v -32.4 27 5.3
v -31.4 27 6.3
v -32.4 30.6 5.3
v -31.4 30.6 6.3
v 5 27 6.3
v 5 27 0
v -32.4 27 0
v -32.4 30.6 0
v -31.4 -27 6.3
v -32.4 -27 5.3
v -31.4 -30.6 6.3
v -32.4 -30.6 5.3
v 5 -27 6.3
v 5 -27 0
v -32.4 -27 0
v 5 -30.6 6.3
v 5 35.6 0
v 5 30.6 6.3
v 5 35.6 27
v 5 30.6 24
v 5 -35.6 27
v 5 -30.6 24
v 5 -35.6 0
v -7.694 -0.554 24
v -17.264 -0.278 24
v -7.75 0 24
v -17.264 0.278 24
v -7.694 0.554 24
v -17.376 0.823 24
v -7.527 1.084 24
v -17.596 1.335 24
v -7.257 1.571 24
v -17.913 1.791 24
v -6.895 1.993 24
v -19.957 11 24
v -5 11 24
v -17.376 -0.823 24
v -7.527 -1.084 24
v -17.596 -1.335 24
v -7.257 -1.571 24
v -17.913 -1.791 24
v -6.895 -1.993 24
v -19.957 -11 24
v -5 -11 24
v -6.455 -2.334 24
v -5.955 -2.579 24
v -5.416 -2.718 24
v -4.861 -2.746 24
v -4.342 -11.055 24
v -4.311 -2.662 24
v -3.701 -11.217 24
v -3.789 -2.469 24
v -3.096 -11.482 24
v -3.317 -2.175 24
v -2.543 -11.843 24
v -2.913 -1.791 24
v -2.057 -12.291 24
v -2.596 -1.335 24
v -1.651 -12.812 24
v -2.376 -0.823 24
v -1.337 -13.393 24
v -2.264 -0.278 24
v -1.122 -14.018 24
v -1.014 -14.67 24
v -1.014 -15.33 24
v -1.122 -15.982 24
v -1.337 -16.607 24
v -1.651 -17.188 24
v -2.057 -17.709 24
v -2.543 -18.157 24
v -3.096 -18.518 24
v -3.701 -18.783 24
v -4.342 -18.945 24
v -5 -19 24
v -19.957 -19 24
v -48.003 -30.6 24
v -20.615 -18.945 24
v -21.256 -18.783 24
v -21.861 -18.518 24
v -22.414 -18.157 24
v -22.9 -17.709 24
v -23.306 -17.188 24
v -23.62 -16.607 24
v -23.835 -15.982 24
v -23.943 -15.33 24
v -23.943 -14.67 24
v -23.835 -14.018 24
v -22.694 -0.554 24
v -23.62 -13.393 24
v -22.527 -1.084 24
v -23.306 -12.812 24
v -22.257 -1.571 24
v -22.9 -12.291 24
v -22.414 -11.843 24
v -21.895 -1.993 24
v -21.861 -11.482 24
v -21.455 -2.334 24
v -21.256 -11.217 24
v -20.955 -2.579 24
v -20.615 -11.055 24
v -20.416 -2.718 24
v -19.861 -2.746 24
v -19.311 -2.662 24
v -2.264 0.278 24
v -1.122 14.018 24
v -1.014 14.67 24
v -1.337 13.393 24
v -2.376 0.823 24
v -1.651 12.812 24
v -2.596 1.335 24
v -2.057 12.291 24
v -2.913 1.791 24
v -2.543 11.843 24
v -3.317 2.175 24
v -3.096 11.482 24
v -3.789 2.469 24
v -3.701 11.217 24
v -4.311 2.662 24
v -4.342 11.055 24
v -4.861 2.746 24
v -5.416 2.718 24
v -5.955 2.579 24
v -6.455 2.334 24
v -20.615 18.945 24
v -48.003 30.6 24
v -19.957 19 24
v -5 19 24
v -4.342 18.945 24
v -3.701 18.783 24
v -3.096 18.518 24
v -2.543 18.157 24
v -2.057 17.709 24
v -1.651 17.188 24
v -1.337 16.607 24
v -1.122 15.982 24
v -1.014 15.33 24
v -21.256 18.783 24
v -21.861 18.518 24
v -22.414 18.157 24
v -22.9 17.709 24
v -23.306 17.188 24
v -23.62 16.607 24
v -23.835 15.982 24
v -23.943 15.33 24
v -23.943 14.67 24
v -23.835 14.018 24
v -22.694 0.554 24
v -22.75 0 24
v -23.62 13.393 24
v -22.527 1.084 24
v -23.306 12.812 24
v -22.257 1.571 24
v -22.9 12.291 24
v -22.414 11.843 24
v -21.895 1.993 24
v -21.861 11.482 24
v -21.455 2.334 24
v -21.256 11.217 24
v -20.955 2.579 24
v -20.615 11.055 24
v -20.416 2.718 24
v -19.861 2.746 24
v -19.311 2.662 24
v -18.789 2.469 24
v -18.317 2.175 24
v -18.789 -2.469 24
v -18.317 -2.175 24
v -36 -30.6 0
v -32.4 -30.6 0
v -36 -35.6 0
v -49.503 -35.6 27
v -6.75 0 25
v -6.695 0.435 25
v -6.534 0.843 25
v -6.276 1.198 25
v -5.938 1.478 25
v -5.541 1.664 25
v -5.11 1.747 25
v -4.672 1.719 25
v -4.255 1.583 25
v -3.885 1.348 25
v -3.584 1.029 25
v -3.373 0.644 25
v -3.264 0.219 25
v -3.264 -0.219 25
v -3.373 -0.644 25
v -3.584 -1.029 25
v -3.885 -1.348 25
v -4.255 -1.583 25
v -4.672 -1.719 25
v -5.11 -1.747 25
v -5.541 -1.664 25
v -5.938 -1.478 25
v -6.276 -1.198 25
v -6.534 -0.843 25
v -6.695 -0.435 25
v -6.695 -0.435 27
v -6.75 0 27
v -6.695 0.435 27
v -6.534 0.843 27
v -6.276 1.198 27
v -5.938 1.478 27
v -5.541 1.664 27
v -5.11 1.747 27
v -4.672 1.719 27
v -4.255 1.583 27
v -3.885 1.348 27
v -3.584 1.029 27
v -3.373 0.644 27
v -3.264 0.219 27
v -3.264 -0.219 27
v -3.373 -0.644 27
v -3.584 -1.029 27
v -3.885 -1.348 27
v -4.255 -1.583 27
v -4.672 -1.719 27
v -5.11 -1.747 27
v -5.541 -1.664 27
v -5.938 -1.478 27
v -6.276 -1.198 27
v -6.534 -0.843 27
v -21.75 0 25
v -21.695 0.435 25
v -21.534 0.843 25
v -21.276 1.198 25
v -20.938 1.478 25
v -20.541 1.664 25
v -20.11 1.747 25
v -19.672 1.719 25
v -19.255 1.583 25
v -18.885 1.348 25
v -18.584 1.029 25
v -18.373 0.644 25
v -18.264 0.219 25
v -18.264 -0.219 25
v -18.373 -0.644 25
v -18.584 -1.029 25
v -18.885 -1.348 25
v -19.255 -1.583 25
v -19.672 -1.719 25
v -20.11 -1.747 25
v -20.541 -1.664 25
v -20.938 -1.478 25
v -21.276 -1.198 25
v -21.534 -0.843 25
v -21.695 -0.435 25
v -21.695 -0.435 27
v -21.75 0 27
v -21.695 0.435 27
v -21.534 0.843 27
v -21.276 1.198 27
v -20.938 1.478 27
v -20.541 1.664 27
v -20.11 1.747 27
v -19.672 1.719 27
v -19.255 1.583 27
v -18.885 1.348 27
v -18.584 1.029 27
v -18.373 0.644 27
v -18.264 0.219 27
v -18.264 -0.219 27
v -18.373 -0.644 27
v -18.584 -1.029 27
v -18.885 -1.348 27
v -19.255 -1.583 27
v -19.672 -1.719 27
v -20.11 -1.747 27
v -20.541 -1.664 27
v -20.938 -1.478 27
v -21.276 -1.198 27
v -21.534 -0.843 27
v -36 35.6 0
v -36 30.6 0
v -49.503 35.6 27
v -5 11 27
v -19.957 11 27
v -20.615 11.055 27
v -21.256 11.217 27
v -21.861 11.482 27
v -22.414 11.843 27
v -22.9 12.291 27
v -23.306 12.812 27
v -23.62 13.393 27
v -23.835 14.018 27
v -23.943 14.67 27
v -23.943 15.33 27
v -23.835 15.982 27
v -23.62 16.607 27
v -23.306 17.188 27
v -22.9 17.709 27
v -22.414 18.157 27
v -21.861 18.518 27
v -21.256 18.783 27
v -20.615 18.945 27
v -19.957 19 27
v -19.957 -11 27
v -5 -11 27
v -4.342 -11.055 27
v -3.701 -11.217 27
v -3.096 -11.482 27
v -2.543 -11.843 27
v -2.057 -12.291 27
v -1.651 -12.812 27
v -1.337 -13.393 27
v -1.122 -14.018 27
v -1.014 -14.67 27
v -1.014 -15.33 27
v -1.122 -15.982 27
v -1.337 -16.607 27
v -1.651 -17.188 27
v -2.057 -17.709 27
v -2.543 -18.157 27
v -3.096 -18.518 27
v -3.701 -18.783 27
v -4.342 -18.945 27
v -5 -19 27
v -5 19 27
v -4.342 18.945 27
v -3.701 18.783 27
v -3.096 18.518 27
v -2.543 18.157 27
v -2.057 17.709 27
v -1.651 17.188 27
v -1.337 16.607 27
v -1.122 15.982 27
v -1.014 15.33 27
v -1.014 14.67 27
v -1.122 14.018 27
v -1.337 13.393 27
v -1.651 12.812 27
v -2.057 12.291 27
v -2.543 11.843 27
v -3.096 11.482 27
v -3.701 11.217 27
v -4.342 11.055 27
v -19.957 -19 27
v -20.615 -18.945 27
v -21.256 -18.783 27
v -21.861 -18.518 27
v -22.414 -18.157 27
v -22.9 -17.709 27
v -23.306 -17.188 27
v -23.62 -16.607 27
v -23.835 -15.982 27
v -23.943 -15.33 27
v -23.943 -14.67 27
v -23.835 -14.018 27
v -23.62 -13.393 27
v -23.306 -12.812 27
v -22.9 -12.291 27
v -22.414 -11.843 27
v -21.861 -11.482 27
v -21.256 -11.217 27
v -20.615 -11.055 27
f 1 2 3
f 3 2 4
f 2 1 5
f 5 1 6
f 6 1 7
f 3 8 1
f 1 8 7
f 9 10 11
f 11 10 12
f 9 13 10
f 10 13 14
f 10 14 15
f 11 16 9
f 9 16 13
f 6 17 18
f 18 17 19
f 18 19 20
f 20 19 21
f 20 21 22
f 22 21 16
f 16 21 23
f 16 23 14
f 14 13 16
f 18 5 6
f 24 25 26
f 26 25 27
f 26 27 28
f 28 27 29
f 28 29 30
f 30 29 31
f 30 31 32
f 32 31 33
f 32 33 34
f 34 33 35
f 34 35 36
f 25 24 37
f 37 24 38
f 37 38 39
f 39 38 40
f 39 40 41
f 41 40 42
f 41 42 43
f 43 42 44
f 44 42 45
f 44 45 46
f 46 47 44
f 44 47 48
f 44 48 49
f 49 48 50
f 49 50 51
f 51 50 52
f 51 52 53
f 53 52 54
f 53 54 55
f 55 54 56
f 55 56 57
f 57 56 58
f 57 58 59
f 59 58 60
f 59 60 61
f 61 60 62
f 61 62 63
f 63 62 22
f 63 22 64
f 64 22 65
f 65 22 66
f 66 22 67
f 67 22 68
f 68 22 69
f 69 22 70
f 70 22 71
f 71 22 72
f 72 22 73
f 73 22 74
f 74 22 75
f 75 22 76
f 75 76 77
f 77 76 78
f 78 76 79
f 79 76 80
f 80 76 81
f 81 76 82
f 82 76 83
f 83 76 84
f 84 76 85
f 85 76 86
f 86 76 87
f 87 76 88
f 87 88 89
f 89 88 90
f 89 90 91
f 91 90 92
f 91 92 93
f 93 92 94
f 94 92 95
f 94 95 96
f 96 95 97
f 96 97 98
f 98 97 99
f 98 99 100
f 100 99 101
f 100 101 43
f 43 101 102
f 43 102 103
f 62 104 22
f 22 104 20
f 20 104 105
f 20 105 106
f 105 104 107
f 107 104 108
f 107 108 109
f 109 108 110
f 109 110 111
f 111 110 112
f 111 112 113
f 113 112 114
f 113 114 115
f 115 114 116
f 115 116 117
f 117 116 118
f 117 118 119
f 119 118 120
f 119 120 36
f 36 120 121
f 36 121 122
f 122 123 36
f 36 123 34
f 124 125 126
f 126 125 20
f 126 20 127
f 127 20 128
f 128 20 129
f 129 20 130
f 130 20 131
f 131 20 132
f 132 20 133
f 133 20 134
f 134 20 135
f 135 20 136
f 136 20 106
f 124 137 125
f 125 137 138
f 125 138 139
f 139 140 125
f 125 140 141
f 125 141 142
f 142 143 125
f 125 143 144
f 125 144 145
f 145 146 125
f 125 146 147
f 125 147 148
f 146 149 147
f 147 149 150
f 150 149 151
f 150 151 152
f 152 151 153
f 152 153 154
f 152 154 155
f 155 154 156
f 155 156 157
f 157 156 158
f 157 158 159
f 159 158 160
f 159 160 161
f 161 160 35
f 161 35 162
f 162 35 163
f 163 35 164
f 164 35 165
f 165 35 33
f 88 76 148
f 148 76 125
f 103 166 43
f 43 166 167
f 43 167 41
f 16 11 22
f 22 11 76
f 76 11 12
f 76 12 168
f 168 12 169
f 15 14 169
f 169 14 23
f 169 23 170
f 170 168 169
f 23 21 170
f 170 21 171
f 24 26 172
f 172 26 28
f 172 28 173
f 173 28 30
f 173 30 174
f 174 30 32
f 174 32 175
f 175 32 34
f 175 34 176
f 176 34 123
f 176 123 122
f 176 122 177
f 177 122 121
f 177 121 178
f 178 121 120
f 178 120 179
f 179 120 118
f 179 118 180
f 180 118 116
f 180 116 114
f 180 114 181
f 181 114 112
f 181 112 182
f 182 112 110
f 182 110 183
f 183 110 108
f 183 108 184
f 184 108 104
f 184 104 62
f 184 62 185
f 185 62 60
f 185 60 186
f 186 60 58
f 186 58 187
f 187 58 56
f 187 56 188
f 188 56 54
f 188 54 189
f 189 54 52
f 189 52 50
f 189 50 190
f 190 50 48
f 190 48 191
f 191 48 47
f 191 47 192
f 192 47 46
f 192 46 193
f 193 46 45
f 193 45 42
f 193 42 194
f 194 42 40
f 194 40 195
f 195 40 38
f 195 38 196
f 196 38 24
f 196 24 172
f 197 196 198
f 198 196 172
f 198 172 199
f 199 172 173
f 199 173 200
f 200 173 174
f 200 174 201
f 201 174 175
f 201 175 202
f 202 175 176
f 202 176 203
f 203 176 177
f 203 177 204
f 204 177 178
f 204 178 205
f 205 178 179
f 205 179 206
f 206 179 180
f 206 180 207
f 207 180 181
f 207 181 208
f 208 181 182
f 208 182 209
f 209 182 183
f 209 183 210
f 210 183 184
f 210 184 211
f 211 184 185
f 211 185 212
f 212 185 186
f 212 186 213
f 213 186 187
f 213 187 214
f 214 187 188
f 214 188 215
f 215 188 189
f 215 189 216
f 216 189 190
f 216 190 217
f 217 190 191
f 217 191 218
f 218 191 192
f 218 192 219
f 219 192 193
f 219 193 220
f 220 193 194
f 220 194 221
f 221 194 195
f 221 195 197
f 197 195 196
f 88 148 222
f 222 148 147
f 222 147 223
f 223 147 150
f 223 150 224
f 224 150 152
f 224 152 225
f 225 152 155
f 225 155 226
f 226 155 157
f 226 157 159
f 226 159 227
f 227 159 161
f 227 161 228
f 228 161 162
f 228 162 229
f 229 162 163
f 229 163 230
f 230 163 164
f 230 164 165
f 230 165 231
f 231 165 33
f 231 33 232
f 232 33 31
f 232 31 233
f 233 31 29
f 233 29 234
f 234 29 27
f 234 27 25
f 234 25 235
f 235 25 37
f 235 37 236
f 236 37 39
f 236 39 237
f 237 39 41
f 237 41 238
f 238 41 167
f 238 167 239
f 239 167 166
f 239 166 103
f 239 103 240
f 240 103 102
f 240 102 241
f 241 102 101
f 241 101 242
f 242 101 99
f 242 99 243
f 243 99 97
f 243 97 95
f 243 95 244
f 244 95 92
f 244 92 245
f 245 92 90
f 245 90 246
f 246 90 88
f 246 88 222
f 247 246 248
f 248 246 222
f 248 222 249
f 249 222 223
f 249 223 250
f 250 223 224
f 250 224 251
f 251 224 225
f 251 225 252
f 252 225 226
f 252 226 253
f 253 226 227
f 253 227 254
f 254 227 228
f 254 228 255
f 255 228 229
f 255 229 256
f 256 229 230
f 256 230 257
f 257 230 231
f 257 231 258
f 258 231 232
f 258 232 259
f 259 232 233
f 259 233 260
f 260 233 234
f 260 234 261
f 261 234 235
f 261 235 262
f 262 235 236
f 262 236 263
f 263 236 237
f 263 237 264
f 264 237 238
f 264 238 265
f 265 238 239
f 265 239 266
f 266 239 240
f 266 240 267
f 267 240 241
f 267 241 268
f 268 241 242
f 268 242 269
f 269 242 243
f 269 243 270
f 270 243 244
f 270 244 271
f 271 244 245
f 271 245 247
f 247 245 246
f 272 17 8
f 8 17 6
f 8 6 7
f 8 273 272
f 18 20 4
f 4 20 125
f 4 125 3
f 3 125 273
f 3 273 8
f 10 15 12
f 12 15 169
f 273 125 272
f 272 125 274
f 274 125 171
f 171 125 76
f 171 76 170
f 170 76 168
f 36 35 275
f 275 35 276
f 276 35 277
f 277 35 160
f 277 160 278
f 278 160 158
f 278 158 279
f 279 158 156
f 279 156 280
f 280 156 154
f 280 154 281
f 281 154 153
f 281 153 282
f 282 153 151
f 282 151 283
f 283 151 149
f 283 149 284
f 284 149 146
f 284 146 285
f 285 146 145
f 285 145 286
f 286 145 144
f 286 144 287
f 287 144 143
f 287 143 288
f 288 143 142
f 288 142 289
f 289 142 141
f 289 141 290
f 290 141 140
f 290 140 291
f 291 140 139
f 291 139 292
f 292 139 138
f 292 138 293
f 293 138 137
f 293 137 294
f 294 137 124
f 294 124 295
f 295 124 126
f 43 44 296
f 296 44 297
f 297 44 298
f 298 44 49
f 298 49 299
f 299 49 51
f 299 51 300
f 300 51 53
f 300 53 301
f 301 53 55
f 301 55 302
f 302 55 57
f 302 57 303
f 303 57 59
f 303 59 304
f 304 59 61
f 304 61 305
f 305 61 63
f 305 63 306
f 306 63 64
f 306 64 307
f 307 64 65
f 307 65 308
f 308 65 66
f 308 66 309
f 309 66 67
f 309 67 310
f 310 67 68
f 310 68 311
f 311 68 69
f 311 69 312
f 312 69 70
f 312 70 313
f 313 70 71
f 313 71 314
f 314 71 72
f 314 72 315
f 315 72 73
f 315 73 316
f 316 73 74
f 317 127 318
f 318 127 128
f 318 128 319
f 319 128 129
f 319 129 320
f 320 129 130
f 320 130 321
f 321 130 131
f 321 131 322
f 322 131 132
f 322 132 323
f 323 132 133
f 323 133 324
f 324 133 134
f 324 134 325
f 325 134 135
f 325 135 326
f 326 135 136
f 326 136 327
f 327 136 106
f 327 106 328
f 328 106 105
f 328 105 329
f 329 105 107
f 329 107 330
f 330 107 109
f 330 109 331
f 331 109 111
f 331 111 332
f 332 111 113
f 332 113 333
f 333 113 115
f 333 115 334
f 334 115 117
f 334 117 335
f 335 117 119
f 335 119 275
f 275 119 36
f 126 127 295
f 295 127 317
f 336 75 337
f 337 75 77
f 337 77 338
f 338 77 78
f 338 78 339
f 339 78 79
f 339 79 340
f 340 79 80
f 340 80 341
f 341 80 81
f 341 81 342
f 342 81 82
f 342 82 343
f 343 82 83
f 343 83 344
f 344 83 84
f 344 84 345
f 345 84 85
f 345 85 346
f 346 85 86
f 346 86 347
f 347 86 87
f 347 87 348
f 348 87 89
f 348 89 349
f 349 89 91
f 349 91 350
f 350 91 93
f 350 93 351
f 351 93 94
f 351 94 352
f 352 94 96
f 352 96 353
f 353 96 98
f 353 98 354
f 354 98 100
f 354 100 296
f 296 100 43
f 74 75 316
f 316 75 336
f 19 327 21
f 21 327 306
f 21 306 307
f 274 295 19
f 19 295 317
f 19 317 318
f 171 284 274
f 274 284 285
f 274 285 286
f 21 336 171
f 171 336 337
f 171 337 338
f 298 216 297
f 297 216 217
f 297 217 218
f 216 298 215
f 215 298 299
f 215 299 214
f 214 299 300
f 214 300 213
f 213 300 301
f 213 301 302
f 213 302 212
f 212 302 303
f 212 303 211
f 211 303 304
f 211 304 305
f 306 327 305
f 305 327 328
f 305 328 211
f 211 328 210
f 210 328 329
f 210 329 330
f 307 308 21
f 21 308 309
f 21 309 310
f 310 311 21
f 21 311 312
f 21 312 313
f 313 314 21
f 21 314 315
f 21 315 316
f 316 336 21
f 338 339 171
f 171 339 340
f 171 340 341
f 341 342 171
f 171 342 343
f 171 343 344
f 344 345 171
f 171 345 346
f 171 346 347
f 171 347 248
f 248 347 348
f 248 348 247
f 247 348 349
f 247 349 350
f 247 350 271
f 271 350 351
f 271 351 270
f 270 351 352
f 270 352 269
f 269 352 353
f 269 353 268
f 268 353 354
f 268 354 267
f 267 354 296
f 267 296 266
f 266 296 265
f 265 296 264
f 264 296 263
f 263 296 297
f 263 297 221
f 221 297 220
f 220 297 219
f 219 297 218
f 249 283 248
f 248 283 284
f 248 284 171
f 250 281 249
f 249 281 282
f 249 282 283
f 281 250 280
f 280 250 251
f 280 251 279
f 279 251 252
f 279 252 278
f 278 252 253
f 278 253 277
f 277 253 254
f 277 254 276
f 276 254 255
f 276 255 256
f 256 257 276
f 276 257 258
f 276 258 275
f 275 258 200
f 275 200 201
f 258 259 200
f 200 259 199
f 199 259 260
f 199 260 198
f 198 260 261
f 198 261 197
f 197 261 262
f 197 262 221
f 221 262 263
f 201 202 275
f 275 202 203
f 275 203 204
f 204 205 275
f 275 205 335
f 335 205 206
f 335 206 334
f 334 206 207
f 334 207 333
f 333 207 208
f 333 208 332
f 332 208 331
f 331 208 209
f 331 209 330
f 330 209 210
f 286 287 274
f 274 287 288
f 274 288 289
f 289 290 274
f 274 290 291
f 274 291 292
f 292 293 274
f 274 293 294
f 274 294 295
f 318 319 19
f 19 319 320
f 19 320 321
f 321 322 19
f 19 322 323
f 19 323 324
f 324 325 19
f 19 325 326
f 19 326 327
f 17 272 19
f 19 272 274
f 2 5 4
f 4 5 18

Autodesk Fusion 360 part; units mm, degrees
sketch "Sketch1" plane through (0, 0, 0) normal (0, 0, 1) x (1, 0, 0)
  line L0 (36, 27) -> (-36, 27)
  line L1 (-36, 27) -> (-36, -27)
  line L2 (-36, -27) -> (36, -27)
  line L3 (36, -27) -> (36, 27)
  line L4 (36, 30.6) -> (-36, 30.6)
  line L5 (-36, 35.6) -> (-36, -30.6)
  line L6 (-36, -30.6) -> (36, -30.6)
  line L7 (36, -30.6) -> (36, 30.6)
  line L8 (33, 35.6) -> (-36, 35.6)
  line L9 (41, -27.6) -> (41, 27.6)
  line L10 (33, -35.6) -> (-36, -35.6)
  line L11 (-36, -35.6) -> (-36, 30.6)
  arc A0 (41, 27.6) -> (33, 35.6) centre (33, 27.6) ccw
  arc A1 (33, -35.6) -> (41, -27.6) centre (33, -27.6) ccw
  circle A2 centre (-20, 0) radius 1.75
  line L12 (-19.9571, 11) -> (-5, 11)
  arc A3 (-5, 11) -> (-5, 19) centre (-5, 15) ccw
  line L13 (-5, 19) -> (-19.9571, 19)
  arc A4 (-19.9571, 19) -> (-19.9571, 11) centre (-19.9571, 15) ccw
  line L14 (-19.9571, 15) -> (-5, 15) construction
  line L15 (1.75, 0) -> (22.5, 0)
  line L16 (-19.9571, -11) -> (-5, -11)
  line L17 (-5, -19) -> (-19.9571, -19)
  arc A5 (-5, -19) -> (-5, -11) centre (-5, -15) ccw
  arc A6 (-19.9571, -11) -> (-19.9571, -19) centre (-19.9571, -15) ccw
  circle A7 centre (-5, 0) radius 1.75
  dimension "d1" = 72
  dimension "d2" = 54
  dimension "d3" = 61.2
  dimension "d6" = 8
  dimension "d32" = 3.5
  dimension "d34" = 8
  dimension "d40" = 3.5
extrude "Extrude1" add sketch "Sketch1" along normal blind 6.3 contours L3 L4 L5 L6 L7 L8 L9 L10 L11 A0 A1 | L0 L4 L5 L7 L11 | L2 L5 L6 L7 L11
extrude "Extrude2" add sketch "Sketch1" along normal blind 24 contours L3 L4 L5 L6 L7 L8 L9 L10 L11 A0 A1
extrude "Extrude3" add sketch "Sketch1" along normal blind 27 and the other way blind -24
sketch "Sketch2" plane through (0, -35.6, 0) normal (0, -1, 0) x (1, 0, 0)
  line L0 (-36, 0) -> (33, 0)
  line L1 (33, 0) -> (33, 27)
  line L2 (-36, 27) -> (-36, 0)
  line L3 (-36, 0) -> (-49.5029, 27)
  line L4 (-36, 0) -> (-6, 0) construction
  line L5 (-36, 27) -> (-49.5029, 27)
  line L6 (33, 27) -> (-36, 27)
  line L7 (-36, 27) -> (-36, 24)
  line L8 (-36, 24) -> (-36.4845, 24)
  line L9 (-36.4845, 24) -> (-48.0026, 24)
  line L10 (-36, 0) -> (-36, 6.4)
  line L11 (-36, 6.4) -> (-36, 6)
  line L12 (-36, 6.4) -> (-39.2007, 6.4)
  line L13 (-36, 0) -> (-32.4, 0)
  line L14 (-49.5029, 27) -> (-47.5029, 27)
  line L15 (-36, 6.4) -> (-32.4, 6.4)
  line L16 (-32.4, 6.4) -> (-32.4, 0)
  dimension "d11" = 116.57
  dimension "d25" = 6.4
  dimension "d36" = 3.6
  dimension "d37" = 2
extrude "Extrude4" add sketch "Sketch2" against normal blind 5 contours L2 L3 L10 L11 L12 | L2 L3 L8 L9 L12
extrude "Extrude5" add sketch "Sketch2" along normal blind -71.2 and the other way blind 66.2 contours L2 L3 L10 L11 L12 | L2 L3 L8 L9 L12
extrude "Extrude6" add sketch "Sketch2" against normal blind 71.2 contours L2 L3 L5 L7 L8 L9 L14
extrude "Extrude7" cut sketch "Sketch2" along normal blind -8.6 and the other way blind 5 contours L0 L2 L10 L11 L13 L15 L16
extrude "Extrude8" cut sketch "Sketch2" along normal blind -66.2 and the other way blind 62.6 contours L0 L2 L10 L11 L13 L15 L16
chamfer "Chamfer2" distance 1 angle 45 2 edges at (-21.6316, 0.6328, 24) (-6.6316, 0.6328, 24)
sketch "Sketch3" plane through (0, 0, 27) normal (0, 0, 1) x (-1, 0, 0)
  arc A0 (5, 19) -> (5, 11) centre (5, 15) ccw
  line L0 (5, 19) -> (19.9571, 19)
  arc A1 (19.9571, 11) -> (19.9571, 19) centre (19.9571, 15) ccw
  line L1 (19.9571, 11) -> (5, 11)
  circle A2 centre (20, 0) radius 1.75
  circle A3 centre (5, 0) radius 1.75
  arc A4 (19.9571, -19) -> (19.9571, -11) centre (19.9571, -15) ccw
  line L2 (19.9571, -19) -> (5, -19)
  arc A5 (5, -11) -> (5, -19) centre (5, -15) ccw
  line L3 (5, -11) -> (19.9571, -11)
  line L4 (49.5029, 35.6) -> (-33, 35.6)
  arc A6 (-33, 35.6) -> (-41, 27.6) centre (-33, 27.6) ccw
  line L5 (-41, 27.6) -> (-41, -27.6)
  arc A7 (-41, -27.6) -> (-33, -35.6) centre (-33, -27.6) ccw
  line L6 (-33, -35.6) -> (49.5029, -35.6)
  line L7 (49.5029, -35.6) -> (49.5029, 35.6)
  line L8 (-5, -40) -> (-45, -40)
  line L9 (-45, -40) -> (-45, 40)
  line L10 (-45, 40) -> (-5, 40)
  line L11 (-5, 40) -> (-5, -40)
extrude "Extrude9" cut sketch "Sketch3" against normal blind 55 contours L4 A6 L5 A7 L6 L11 | L4 A6 L5 A7 L6 L8 L9 L10 L11
chamfer "Chamfer3" distance 1 angle 45 2 edges at (-32.4, -28.8, 6.3) (-32.4, 28.8, 6.3)
